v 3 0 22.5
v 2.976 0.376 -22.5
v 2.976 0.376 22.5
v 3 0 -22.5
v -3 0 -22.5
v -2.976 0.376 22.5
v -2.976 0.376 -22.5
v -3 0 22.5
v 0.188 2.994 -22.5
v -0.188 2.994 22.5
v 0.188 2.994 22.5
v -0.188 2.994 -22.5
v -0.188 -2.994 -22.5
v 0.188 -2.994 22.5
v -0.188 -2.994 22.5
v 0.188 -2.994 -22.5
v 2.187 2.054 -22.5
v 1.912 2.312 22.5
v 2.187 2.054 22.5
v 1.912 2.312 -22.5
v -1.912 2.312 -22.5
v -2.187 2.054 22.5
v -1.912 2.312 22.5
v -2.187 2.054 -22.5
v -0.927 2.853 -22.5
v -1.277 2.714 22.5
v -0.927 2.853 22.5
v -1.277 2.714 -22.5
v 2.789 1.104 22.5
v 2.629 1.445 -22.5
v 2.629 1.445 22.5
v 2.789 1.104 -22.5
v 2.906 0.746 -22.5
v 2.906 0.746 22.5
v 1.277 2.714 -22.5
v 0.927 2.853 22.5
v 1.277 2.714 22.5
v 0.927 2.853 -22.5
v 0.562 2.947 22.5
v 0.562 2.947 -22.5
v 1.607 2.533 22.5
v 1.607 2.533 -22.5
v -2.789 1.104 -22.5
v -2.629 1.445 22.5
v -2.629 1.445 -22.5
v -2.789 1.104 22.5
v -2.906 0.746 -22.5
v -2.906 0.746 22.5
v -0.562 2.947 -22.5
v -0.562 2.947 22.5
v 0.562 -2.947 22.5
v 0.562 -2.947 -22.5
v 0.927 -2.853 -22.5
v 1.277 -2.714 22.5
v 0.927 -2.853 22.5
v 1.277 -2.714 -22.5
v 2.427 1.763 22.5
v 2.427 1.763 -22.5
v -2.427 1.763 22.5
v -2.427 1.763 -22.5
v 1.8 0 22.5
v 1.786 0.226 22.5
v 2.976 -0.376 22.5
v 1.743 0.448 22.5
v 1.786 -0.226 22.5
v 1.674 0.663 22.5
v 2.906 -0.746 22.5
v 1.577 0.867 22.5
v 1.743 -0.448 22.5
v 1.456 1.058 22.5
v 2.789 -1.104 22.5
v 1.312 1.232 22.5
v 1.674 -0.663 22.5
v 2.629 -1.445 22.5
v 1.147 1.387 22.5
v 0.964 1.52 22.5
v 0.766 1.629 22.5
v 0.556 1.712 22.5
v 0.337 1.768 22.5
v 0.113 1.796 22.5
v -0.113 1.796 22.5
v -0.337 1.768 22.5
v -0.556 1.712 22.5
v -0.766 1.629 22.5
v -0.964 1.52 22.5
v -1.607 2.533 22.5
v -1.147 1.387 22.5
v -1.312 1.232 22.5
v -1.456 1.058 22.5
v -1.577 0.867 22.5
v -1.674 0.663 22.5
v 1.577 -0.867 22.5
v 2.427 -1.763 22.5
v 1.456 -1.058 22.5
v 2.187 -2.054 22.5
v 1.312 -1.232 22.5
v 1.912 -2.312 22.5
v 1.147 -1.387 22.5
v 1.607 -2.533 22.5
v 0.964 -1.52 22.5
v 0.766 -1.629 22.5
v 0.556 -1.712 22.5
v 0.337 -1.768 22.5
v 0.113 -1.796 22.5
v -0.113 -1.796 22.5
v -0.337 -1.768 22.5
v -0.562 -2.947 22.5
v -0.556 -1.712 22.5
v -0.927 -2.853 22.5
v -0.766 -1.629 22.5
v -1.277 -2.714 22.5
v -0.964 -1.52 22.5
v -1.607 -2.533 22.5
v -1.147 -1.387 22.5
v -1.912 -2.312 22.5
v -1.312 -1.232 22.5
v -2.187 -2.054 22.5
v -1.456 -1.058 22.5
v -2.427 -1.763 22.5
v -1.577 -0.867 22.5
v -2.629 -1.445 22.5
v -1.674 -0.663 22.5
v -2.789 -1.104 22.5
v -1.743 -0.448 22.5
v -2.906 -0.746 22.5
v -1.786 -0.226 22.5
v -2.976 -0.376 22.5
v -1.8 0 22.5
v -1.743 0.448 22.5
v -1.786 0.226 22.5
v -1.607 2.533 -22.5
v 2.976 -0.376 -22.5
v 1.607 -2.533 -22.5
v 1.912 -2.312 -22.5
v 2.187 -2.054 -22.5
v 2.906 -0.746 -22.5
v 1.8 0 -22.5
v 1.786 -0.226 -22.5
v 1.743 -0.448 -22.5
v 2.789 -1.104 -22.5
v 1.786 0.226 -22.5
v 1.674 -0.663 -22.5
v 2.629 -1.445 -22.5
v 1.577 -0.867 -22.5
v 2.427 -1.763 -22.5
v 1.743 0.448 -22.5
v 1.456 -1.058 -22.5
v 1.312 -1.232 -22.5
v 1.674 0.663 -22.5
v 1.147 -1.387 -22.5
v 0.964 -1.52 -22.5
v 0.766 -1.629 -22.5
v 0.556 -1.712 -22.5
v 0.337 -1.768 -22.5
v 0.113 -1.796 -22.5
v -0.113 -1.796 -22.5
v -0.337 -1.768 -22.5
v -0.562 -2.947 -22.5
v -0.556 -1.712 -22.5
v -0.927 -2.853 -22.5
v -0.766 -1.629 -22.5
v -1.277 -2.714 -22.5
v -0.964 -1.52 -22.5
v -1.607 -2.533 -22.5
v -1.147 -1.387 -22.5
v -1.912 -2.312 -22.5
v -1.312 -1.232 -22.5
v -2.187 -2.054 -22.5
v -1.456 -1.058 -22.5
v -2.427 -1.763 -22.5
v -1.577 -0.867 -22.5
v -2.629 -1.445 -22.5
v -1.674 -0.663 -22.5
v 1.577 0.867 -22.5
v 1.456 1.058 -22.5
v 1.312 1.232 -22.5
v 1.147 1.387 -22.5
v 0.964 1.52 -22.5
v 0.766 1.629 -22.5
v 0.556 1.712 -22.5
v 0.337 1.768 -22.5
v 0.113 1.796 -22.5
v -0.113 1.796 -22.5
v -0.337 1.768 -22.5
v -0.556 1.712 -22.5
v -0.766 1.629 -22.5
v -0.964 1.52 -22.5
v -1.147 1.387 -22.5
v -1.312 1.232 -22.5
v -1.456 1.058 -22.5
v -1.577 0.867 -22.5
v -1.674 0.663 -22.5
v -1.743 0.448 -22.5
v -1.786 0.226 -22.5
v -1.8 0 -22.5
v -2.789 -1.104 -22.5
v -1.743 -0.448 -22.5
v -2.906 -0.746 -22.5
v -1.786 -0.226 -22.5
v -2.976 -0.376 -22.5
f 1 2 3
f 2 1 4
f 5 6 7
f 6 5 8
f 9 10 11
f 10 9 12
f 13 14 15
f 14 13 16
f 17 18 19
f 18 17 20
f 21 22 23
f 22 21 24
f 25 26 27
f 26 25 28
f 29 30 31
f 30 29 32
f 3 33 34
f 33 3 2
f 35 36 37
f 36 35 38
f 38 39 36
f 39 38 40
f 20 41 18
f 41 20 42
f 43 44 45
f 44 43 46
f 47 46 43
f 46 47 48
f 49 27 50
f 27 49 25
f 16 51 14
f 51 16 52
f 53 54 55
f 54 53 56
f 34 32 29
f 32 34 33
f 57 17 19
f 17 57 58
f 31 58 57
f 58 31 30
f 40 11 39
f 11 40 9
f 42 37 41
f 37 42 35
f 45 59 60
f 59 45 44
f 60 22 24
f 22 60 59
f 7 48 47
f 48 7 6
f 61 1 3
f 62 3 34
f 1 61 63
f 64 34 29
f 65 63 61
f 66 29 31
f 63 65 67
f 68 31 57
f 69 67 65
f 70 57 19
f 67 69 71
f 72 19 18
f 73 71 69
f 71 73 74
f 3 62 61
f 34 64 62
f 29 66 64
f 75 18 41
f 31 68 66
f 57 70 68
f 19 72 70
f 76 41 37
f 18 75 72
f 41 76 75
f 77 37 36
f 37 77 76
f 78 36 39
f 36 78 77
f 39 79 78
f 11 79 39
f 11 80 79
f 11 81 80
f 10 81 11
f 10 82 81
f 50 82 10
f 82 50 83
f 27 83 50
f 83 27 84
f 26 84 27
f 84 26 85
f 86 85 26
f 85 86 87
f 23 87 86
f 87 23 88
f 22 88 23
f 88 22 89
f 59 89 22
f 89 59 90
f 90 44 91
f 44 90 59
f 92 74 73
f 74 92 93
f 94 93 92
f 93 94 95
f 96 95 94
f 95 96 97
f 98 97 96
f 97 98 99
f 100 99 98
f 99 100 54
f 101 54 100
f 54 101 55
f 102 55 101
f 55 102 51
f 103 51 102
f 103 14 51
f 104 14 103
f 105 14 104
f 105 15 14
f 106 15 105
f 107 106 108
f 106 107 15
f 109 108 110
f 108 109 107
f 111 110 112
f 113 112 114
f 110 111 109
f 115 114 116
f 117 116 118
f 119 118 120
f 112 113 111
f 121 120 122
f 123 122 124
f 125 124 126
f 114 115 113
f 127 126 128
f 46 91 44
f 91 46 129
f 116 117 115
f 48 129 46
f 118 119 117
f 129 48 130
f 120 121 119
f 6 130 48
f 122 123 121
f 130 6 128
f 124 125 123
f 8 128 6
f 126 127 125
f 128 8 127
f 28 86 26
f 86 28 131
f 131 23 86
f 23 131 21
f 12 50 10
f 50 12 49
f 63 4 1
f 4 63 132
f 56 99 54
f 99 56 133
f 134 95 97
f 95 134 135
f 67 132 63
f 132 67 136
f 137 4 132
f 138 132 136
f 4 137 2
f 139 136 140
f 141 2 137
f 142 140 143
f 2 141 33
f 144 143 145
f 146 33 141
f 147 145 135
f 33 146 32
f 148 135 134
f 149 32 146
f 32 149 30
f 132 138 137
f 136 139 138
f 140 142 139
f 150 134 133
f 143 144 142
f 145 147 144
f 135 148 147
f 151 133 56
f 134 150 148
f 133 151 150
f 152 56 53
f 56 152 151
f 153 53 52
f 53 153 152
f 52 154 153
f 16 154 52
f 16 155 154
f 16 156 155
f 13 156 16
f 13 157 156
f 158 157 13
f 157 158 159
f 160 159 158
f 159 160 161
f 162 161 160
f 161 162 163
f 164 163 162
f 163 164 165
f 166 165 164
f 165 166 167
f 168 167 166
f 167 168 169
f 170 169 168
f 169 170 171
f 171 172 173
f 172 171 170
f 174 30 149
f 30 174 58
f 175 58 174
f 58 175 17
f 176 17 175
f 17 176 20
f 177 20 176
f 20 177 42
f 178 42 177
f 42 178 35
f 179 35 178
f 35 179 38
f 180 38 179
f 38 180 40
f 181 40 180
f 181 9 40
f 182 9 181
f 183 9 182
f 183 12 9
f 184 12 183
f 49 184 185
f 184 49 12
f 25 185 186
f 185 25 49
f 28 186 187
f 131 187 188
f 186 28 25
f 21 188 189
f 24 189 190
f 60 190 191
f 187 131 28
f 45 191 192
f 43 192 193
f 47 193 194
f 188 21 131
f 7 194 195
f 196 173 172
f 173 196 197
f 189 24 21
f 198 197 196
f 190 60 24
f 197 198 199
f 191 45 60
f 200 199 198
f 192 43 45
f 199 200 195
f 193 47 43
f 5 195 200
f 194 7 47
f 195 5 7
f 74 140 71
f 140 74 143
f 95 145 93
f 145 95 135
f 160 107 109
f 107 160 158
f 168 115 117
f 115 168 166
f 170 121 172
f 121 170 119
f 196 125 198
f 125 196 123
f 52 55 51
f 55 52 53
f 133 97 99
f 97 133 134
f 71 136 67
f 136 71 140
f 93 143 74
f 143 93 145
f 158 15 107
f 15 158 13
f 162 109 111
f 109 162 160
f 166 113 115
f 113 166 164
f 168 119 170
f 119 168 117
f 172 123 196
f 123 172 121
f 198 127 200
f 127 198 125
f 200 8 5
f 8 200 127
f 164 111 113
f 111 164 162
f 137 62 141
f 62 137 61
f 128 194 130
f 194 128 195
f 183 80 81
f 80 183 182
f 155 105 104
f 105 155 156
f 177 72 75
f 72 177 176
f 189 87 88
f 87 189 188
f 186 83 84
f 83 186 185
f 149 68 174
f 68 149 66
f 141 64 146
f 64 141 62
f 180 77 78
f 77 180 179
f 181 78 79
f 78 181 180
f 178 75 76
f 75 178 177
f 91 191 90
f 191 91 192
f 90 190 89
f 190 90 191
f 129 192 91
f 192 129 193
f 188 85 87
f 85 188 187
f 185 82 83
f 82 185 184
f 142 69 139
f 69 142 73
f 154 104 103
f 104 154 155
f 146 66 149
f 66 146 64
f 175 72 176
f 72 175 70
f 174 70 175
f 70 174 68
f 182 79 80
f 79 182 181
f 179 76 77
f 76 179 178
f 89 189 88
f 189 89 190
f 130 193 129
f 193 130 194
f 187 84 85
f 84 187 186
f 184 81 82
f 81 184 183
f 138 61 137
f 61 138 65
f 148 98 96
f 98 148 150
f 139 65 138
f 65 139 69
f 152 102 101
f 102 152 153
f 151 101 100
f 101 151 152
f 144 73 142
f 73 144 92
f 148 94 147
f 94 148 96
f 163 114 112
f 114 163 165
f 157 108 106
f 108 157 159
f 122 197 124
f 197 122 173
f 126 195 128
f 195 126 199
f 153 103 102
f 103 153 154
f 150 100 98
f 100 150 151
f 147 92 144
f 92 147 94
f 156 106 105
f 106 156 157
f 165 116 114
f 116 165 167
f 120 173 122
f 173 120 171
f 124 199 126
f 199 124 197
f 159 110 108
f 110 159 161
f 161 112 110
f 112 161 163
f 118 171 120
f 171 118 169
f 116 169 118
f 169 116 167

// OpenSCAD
$fn = 50;


difference() {
	union() {
		translate(v = [0, 0, -22.5000000000]) {
			cylinder(h = 45, r = 3.0000000000);
		}
	}
	union() {
		translate(v = [0, 0, -100.0000000000]) {
			cylinder(h = 200, r = 1.8000000000);
		}
	}
}
